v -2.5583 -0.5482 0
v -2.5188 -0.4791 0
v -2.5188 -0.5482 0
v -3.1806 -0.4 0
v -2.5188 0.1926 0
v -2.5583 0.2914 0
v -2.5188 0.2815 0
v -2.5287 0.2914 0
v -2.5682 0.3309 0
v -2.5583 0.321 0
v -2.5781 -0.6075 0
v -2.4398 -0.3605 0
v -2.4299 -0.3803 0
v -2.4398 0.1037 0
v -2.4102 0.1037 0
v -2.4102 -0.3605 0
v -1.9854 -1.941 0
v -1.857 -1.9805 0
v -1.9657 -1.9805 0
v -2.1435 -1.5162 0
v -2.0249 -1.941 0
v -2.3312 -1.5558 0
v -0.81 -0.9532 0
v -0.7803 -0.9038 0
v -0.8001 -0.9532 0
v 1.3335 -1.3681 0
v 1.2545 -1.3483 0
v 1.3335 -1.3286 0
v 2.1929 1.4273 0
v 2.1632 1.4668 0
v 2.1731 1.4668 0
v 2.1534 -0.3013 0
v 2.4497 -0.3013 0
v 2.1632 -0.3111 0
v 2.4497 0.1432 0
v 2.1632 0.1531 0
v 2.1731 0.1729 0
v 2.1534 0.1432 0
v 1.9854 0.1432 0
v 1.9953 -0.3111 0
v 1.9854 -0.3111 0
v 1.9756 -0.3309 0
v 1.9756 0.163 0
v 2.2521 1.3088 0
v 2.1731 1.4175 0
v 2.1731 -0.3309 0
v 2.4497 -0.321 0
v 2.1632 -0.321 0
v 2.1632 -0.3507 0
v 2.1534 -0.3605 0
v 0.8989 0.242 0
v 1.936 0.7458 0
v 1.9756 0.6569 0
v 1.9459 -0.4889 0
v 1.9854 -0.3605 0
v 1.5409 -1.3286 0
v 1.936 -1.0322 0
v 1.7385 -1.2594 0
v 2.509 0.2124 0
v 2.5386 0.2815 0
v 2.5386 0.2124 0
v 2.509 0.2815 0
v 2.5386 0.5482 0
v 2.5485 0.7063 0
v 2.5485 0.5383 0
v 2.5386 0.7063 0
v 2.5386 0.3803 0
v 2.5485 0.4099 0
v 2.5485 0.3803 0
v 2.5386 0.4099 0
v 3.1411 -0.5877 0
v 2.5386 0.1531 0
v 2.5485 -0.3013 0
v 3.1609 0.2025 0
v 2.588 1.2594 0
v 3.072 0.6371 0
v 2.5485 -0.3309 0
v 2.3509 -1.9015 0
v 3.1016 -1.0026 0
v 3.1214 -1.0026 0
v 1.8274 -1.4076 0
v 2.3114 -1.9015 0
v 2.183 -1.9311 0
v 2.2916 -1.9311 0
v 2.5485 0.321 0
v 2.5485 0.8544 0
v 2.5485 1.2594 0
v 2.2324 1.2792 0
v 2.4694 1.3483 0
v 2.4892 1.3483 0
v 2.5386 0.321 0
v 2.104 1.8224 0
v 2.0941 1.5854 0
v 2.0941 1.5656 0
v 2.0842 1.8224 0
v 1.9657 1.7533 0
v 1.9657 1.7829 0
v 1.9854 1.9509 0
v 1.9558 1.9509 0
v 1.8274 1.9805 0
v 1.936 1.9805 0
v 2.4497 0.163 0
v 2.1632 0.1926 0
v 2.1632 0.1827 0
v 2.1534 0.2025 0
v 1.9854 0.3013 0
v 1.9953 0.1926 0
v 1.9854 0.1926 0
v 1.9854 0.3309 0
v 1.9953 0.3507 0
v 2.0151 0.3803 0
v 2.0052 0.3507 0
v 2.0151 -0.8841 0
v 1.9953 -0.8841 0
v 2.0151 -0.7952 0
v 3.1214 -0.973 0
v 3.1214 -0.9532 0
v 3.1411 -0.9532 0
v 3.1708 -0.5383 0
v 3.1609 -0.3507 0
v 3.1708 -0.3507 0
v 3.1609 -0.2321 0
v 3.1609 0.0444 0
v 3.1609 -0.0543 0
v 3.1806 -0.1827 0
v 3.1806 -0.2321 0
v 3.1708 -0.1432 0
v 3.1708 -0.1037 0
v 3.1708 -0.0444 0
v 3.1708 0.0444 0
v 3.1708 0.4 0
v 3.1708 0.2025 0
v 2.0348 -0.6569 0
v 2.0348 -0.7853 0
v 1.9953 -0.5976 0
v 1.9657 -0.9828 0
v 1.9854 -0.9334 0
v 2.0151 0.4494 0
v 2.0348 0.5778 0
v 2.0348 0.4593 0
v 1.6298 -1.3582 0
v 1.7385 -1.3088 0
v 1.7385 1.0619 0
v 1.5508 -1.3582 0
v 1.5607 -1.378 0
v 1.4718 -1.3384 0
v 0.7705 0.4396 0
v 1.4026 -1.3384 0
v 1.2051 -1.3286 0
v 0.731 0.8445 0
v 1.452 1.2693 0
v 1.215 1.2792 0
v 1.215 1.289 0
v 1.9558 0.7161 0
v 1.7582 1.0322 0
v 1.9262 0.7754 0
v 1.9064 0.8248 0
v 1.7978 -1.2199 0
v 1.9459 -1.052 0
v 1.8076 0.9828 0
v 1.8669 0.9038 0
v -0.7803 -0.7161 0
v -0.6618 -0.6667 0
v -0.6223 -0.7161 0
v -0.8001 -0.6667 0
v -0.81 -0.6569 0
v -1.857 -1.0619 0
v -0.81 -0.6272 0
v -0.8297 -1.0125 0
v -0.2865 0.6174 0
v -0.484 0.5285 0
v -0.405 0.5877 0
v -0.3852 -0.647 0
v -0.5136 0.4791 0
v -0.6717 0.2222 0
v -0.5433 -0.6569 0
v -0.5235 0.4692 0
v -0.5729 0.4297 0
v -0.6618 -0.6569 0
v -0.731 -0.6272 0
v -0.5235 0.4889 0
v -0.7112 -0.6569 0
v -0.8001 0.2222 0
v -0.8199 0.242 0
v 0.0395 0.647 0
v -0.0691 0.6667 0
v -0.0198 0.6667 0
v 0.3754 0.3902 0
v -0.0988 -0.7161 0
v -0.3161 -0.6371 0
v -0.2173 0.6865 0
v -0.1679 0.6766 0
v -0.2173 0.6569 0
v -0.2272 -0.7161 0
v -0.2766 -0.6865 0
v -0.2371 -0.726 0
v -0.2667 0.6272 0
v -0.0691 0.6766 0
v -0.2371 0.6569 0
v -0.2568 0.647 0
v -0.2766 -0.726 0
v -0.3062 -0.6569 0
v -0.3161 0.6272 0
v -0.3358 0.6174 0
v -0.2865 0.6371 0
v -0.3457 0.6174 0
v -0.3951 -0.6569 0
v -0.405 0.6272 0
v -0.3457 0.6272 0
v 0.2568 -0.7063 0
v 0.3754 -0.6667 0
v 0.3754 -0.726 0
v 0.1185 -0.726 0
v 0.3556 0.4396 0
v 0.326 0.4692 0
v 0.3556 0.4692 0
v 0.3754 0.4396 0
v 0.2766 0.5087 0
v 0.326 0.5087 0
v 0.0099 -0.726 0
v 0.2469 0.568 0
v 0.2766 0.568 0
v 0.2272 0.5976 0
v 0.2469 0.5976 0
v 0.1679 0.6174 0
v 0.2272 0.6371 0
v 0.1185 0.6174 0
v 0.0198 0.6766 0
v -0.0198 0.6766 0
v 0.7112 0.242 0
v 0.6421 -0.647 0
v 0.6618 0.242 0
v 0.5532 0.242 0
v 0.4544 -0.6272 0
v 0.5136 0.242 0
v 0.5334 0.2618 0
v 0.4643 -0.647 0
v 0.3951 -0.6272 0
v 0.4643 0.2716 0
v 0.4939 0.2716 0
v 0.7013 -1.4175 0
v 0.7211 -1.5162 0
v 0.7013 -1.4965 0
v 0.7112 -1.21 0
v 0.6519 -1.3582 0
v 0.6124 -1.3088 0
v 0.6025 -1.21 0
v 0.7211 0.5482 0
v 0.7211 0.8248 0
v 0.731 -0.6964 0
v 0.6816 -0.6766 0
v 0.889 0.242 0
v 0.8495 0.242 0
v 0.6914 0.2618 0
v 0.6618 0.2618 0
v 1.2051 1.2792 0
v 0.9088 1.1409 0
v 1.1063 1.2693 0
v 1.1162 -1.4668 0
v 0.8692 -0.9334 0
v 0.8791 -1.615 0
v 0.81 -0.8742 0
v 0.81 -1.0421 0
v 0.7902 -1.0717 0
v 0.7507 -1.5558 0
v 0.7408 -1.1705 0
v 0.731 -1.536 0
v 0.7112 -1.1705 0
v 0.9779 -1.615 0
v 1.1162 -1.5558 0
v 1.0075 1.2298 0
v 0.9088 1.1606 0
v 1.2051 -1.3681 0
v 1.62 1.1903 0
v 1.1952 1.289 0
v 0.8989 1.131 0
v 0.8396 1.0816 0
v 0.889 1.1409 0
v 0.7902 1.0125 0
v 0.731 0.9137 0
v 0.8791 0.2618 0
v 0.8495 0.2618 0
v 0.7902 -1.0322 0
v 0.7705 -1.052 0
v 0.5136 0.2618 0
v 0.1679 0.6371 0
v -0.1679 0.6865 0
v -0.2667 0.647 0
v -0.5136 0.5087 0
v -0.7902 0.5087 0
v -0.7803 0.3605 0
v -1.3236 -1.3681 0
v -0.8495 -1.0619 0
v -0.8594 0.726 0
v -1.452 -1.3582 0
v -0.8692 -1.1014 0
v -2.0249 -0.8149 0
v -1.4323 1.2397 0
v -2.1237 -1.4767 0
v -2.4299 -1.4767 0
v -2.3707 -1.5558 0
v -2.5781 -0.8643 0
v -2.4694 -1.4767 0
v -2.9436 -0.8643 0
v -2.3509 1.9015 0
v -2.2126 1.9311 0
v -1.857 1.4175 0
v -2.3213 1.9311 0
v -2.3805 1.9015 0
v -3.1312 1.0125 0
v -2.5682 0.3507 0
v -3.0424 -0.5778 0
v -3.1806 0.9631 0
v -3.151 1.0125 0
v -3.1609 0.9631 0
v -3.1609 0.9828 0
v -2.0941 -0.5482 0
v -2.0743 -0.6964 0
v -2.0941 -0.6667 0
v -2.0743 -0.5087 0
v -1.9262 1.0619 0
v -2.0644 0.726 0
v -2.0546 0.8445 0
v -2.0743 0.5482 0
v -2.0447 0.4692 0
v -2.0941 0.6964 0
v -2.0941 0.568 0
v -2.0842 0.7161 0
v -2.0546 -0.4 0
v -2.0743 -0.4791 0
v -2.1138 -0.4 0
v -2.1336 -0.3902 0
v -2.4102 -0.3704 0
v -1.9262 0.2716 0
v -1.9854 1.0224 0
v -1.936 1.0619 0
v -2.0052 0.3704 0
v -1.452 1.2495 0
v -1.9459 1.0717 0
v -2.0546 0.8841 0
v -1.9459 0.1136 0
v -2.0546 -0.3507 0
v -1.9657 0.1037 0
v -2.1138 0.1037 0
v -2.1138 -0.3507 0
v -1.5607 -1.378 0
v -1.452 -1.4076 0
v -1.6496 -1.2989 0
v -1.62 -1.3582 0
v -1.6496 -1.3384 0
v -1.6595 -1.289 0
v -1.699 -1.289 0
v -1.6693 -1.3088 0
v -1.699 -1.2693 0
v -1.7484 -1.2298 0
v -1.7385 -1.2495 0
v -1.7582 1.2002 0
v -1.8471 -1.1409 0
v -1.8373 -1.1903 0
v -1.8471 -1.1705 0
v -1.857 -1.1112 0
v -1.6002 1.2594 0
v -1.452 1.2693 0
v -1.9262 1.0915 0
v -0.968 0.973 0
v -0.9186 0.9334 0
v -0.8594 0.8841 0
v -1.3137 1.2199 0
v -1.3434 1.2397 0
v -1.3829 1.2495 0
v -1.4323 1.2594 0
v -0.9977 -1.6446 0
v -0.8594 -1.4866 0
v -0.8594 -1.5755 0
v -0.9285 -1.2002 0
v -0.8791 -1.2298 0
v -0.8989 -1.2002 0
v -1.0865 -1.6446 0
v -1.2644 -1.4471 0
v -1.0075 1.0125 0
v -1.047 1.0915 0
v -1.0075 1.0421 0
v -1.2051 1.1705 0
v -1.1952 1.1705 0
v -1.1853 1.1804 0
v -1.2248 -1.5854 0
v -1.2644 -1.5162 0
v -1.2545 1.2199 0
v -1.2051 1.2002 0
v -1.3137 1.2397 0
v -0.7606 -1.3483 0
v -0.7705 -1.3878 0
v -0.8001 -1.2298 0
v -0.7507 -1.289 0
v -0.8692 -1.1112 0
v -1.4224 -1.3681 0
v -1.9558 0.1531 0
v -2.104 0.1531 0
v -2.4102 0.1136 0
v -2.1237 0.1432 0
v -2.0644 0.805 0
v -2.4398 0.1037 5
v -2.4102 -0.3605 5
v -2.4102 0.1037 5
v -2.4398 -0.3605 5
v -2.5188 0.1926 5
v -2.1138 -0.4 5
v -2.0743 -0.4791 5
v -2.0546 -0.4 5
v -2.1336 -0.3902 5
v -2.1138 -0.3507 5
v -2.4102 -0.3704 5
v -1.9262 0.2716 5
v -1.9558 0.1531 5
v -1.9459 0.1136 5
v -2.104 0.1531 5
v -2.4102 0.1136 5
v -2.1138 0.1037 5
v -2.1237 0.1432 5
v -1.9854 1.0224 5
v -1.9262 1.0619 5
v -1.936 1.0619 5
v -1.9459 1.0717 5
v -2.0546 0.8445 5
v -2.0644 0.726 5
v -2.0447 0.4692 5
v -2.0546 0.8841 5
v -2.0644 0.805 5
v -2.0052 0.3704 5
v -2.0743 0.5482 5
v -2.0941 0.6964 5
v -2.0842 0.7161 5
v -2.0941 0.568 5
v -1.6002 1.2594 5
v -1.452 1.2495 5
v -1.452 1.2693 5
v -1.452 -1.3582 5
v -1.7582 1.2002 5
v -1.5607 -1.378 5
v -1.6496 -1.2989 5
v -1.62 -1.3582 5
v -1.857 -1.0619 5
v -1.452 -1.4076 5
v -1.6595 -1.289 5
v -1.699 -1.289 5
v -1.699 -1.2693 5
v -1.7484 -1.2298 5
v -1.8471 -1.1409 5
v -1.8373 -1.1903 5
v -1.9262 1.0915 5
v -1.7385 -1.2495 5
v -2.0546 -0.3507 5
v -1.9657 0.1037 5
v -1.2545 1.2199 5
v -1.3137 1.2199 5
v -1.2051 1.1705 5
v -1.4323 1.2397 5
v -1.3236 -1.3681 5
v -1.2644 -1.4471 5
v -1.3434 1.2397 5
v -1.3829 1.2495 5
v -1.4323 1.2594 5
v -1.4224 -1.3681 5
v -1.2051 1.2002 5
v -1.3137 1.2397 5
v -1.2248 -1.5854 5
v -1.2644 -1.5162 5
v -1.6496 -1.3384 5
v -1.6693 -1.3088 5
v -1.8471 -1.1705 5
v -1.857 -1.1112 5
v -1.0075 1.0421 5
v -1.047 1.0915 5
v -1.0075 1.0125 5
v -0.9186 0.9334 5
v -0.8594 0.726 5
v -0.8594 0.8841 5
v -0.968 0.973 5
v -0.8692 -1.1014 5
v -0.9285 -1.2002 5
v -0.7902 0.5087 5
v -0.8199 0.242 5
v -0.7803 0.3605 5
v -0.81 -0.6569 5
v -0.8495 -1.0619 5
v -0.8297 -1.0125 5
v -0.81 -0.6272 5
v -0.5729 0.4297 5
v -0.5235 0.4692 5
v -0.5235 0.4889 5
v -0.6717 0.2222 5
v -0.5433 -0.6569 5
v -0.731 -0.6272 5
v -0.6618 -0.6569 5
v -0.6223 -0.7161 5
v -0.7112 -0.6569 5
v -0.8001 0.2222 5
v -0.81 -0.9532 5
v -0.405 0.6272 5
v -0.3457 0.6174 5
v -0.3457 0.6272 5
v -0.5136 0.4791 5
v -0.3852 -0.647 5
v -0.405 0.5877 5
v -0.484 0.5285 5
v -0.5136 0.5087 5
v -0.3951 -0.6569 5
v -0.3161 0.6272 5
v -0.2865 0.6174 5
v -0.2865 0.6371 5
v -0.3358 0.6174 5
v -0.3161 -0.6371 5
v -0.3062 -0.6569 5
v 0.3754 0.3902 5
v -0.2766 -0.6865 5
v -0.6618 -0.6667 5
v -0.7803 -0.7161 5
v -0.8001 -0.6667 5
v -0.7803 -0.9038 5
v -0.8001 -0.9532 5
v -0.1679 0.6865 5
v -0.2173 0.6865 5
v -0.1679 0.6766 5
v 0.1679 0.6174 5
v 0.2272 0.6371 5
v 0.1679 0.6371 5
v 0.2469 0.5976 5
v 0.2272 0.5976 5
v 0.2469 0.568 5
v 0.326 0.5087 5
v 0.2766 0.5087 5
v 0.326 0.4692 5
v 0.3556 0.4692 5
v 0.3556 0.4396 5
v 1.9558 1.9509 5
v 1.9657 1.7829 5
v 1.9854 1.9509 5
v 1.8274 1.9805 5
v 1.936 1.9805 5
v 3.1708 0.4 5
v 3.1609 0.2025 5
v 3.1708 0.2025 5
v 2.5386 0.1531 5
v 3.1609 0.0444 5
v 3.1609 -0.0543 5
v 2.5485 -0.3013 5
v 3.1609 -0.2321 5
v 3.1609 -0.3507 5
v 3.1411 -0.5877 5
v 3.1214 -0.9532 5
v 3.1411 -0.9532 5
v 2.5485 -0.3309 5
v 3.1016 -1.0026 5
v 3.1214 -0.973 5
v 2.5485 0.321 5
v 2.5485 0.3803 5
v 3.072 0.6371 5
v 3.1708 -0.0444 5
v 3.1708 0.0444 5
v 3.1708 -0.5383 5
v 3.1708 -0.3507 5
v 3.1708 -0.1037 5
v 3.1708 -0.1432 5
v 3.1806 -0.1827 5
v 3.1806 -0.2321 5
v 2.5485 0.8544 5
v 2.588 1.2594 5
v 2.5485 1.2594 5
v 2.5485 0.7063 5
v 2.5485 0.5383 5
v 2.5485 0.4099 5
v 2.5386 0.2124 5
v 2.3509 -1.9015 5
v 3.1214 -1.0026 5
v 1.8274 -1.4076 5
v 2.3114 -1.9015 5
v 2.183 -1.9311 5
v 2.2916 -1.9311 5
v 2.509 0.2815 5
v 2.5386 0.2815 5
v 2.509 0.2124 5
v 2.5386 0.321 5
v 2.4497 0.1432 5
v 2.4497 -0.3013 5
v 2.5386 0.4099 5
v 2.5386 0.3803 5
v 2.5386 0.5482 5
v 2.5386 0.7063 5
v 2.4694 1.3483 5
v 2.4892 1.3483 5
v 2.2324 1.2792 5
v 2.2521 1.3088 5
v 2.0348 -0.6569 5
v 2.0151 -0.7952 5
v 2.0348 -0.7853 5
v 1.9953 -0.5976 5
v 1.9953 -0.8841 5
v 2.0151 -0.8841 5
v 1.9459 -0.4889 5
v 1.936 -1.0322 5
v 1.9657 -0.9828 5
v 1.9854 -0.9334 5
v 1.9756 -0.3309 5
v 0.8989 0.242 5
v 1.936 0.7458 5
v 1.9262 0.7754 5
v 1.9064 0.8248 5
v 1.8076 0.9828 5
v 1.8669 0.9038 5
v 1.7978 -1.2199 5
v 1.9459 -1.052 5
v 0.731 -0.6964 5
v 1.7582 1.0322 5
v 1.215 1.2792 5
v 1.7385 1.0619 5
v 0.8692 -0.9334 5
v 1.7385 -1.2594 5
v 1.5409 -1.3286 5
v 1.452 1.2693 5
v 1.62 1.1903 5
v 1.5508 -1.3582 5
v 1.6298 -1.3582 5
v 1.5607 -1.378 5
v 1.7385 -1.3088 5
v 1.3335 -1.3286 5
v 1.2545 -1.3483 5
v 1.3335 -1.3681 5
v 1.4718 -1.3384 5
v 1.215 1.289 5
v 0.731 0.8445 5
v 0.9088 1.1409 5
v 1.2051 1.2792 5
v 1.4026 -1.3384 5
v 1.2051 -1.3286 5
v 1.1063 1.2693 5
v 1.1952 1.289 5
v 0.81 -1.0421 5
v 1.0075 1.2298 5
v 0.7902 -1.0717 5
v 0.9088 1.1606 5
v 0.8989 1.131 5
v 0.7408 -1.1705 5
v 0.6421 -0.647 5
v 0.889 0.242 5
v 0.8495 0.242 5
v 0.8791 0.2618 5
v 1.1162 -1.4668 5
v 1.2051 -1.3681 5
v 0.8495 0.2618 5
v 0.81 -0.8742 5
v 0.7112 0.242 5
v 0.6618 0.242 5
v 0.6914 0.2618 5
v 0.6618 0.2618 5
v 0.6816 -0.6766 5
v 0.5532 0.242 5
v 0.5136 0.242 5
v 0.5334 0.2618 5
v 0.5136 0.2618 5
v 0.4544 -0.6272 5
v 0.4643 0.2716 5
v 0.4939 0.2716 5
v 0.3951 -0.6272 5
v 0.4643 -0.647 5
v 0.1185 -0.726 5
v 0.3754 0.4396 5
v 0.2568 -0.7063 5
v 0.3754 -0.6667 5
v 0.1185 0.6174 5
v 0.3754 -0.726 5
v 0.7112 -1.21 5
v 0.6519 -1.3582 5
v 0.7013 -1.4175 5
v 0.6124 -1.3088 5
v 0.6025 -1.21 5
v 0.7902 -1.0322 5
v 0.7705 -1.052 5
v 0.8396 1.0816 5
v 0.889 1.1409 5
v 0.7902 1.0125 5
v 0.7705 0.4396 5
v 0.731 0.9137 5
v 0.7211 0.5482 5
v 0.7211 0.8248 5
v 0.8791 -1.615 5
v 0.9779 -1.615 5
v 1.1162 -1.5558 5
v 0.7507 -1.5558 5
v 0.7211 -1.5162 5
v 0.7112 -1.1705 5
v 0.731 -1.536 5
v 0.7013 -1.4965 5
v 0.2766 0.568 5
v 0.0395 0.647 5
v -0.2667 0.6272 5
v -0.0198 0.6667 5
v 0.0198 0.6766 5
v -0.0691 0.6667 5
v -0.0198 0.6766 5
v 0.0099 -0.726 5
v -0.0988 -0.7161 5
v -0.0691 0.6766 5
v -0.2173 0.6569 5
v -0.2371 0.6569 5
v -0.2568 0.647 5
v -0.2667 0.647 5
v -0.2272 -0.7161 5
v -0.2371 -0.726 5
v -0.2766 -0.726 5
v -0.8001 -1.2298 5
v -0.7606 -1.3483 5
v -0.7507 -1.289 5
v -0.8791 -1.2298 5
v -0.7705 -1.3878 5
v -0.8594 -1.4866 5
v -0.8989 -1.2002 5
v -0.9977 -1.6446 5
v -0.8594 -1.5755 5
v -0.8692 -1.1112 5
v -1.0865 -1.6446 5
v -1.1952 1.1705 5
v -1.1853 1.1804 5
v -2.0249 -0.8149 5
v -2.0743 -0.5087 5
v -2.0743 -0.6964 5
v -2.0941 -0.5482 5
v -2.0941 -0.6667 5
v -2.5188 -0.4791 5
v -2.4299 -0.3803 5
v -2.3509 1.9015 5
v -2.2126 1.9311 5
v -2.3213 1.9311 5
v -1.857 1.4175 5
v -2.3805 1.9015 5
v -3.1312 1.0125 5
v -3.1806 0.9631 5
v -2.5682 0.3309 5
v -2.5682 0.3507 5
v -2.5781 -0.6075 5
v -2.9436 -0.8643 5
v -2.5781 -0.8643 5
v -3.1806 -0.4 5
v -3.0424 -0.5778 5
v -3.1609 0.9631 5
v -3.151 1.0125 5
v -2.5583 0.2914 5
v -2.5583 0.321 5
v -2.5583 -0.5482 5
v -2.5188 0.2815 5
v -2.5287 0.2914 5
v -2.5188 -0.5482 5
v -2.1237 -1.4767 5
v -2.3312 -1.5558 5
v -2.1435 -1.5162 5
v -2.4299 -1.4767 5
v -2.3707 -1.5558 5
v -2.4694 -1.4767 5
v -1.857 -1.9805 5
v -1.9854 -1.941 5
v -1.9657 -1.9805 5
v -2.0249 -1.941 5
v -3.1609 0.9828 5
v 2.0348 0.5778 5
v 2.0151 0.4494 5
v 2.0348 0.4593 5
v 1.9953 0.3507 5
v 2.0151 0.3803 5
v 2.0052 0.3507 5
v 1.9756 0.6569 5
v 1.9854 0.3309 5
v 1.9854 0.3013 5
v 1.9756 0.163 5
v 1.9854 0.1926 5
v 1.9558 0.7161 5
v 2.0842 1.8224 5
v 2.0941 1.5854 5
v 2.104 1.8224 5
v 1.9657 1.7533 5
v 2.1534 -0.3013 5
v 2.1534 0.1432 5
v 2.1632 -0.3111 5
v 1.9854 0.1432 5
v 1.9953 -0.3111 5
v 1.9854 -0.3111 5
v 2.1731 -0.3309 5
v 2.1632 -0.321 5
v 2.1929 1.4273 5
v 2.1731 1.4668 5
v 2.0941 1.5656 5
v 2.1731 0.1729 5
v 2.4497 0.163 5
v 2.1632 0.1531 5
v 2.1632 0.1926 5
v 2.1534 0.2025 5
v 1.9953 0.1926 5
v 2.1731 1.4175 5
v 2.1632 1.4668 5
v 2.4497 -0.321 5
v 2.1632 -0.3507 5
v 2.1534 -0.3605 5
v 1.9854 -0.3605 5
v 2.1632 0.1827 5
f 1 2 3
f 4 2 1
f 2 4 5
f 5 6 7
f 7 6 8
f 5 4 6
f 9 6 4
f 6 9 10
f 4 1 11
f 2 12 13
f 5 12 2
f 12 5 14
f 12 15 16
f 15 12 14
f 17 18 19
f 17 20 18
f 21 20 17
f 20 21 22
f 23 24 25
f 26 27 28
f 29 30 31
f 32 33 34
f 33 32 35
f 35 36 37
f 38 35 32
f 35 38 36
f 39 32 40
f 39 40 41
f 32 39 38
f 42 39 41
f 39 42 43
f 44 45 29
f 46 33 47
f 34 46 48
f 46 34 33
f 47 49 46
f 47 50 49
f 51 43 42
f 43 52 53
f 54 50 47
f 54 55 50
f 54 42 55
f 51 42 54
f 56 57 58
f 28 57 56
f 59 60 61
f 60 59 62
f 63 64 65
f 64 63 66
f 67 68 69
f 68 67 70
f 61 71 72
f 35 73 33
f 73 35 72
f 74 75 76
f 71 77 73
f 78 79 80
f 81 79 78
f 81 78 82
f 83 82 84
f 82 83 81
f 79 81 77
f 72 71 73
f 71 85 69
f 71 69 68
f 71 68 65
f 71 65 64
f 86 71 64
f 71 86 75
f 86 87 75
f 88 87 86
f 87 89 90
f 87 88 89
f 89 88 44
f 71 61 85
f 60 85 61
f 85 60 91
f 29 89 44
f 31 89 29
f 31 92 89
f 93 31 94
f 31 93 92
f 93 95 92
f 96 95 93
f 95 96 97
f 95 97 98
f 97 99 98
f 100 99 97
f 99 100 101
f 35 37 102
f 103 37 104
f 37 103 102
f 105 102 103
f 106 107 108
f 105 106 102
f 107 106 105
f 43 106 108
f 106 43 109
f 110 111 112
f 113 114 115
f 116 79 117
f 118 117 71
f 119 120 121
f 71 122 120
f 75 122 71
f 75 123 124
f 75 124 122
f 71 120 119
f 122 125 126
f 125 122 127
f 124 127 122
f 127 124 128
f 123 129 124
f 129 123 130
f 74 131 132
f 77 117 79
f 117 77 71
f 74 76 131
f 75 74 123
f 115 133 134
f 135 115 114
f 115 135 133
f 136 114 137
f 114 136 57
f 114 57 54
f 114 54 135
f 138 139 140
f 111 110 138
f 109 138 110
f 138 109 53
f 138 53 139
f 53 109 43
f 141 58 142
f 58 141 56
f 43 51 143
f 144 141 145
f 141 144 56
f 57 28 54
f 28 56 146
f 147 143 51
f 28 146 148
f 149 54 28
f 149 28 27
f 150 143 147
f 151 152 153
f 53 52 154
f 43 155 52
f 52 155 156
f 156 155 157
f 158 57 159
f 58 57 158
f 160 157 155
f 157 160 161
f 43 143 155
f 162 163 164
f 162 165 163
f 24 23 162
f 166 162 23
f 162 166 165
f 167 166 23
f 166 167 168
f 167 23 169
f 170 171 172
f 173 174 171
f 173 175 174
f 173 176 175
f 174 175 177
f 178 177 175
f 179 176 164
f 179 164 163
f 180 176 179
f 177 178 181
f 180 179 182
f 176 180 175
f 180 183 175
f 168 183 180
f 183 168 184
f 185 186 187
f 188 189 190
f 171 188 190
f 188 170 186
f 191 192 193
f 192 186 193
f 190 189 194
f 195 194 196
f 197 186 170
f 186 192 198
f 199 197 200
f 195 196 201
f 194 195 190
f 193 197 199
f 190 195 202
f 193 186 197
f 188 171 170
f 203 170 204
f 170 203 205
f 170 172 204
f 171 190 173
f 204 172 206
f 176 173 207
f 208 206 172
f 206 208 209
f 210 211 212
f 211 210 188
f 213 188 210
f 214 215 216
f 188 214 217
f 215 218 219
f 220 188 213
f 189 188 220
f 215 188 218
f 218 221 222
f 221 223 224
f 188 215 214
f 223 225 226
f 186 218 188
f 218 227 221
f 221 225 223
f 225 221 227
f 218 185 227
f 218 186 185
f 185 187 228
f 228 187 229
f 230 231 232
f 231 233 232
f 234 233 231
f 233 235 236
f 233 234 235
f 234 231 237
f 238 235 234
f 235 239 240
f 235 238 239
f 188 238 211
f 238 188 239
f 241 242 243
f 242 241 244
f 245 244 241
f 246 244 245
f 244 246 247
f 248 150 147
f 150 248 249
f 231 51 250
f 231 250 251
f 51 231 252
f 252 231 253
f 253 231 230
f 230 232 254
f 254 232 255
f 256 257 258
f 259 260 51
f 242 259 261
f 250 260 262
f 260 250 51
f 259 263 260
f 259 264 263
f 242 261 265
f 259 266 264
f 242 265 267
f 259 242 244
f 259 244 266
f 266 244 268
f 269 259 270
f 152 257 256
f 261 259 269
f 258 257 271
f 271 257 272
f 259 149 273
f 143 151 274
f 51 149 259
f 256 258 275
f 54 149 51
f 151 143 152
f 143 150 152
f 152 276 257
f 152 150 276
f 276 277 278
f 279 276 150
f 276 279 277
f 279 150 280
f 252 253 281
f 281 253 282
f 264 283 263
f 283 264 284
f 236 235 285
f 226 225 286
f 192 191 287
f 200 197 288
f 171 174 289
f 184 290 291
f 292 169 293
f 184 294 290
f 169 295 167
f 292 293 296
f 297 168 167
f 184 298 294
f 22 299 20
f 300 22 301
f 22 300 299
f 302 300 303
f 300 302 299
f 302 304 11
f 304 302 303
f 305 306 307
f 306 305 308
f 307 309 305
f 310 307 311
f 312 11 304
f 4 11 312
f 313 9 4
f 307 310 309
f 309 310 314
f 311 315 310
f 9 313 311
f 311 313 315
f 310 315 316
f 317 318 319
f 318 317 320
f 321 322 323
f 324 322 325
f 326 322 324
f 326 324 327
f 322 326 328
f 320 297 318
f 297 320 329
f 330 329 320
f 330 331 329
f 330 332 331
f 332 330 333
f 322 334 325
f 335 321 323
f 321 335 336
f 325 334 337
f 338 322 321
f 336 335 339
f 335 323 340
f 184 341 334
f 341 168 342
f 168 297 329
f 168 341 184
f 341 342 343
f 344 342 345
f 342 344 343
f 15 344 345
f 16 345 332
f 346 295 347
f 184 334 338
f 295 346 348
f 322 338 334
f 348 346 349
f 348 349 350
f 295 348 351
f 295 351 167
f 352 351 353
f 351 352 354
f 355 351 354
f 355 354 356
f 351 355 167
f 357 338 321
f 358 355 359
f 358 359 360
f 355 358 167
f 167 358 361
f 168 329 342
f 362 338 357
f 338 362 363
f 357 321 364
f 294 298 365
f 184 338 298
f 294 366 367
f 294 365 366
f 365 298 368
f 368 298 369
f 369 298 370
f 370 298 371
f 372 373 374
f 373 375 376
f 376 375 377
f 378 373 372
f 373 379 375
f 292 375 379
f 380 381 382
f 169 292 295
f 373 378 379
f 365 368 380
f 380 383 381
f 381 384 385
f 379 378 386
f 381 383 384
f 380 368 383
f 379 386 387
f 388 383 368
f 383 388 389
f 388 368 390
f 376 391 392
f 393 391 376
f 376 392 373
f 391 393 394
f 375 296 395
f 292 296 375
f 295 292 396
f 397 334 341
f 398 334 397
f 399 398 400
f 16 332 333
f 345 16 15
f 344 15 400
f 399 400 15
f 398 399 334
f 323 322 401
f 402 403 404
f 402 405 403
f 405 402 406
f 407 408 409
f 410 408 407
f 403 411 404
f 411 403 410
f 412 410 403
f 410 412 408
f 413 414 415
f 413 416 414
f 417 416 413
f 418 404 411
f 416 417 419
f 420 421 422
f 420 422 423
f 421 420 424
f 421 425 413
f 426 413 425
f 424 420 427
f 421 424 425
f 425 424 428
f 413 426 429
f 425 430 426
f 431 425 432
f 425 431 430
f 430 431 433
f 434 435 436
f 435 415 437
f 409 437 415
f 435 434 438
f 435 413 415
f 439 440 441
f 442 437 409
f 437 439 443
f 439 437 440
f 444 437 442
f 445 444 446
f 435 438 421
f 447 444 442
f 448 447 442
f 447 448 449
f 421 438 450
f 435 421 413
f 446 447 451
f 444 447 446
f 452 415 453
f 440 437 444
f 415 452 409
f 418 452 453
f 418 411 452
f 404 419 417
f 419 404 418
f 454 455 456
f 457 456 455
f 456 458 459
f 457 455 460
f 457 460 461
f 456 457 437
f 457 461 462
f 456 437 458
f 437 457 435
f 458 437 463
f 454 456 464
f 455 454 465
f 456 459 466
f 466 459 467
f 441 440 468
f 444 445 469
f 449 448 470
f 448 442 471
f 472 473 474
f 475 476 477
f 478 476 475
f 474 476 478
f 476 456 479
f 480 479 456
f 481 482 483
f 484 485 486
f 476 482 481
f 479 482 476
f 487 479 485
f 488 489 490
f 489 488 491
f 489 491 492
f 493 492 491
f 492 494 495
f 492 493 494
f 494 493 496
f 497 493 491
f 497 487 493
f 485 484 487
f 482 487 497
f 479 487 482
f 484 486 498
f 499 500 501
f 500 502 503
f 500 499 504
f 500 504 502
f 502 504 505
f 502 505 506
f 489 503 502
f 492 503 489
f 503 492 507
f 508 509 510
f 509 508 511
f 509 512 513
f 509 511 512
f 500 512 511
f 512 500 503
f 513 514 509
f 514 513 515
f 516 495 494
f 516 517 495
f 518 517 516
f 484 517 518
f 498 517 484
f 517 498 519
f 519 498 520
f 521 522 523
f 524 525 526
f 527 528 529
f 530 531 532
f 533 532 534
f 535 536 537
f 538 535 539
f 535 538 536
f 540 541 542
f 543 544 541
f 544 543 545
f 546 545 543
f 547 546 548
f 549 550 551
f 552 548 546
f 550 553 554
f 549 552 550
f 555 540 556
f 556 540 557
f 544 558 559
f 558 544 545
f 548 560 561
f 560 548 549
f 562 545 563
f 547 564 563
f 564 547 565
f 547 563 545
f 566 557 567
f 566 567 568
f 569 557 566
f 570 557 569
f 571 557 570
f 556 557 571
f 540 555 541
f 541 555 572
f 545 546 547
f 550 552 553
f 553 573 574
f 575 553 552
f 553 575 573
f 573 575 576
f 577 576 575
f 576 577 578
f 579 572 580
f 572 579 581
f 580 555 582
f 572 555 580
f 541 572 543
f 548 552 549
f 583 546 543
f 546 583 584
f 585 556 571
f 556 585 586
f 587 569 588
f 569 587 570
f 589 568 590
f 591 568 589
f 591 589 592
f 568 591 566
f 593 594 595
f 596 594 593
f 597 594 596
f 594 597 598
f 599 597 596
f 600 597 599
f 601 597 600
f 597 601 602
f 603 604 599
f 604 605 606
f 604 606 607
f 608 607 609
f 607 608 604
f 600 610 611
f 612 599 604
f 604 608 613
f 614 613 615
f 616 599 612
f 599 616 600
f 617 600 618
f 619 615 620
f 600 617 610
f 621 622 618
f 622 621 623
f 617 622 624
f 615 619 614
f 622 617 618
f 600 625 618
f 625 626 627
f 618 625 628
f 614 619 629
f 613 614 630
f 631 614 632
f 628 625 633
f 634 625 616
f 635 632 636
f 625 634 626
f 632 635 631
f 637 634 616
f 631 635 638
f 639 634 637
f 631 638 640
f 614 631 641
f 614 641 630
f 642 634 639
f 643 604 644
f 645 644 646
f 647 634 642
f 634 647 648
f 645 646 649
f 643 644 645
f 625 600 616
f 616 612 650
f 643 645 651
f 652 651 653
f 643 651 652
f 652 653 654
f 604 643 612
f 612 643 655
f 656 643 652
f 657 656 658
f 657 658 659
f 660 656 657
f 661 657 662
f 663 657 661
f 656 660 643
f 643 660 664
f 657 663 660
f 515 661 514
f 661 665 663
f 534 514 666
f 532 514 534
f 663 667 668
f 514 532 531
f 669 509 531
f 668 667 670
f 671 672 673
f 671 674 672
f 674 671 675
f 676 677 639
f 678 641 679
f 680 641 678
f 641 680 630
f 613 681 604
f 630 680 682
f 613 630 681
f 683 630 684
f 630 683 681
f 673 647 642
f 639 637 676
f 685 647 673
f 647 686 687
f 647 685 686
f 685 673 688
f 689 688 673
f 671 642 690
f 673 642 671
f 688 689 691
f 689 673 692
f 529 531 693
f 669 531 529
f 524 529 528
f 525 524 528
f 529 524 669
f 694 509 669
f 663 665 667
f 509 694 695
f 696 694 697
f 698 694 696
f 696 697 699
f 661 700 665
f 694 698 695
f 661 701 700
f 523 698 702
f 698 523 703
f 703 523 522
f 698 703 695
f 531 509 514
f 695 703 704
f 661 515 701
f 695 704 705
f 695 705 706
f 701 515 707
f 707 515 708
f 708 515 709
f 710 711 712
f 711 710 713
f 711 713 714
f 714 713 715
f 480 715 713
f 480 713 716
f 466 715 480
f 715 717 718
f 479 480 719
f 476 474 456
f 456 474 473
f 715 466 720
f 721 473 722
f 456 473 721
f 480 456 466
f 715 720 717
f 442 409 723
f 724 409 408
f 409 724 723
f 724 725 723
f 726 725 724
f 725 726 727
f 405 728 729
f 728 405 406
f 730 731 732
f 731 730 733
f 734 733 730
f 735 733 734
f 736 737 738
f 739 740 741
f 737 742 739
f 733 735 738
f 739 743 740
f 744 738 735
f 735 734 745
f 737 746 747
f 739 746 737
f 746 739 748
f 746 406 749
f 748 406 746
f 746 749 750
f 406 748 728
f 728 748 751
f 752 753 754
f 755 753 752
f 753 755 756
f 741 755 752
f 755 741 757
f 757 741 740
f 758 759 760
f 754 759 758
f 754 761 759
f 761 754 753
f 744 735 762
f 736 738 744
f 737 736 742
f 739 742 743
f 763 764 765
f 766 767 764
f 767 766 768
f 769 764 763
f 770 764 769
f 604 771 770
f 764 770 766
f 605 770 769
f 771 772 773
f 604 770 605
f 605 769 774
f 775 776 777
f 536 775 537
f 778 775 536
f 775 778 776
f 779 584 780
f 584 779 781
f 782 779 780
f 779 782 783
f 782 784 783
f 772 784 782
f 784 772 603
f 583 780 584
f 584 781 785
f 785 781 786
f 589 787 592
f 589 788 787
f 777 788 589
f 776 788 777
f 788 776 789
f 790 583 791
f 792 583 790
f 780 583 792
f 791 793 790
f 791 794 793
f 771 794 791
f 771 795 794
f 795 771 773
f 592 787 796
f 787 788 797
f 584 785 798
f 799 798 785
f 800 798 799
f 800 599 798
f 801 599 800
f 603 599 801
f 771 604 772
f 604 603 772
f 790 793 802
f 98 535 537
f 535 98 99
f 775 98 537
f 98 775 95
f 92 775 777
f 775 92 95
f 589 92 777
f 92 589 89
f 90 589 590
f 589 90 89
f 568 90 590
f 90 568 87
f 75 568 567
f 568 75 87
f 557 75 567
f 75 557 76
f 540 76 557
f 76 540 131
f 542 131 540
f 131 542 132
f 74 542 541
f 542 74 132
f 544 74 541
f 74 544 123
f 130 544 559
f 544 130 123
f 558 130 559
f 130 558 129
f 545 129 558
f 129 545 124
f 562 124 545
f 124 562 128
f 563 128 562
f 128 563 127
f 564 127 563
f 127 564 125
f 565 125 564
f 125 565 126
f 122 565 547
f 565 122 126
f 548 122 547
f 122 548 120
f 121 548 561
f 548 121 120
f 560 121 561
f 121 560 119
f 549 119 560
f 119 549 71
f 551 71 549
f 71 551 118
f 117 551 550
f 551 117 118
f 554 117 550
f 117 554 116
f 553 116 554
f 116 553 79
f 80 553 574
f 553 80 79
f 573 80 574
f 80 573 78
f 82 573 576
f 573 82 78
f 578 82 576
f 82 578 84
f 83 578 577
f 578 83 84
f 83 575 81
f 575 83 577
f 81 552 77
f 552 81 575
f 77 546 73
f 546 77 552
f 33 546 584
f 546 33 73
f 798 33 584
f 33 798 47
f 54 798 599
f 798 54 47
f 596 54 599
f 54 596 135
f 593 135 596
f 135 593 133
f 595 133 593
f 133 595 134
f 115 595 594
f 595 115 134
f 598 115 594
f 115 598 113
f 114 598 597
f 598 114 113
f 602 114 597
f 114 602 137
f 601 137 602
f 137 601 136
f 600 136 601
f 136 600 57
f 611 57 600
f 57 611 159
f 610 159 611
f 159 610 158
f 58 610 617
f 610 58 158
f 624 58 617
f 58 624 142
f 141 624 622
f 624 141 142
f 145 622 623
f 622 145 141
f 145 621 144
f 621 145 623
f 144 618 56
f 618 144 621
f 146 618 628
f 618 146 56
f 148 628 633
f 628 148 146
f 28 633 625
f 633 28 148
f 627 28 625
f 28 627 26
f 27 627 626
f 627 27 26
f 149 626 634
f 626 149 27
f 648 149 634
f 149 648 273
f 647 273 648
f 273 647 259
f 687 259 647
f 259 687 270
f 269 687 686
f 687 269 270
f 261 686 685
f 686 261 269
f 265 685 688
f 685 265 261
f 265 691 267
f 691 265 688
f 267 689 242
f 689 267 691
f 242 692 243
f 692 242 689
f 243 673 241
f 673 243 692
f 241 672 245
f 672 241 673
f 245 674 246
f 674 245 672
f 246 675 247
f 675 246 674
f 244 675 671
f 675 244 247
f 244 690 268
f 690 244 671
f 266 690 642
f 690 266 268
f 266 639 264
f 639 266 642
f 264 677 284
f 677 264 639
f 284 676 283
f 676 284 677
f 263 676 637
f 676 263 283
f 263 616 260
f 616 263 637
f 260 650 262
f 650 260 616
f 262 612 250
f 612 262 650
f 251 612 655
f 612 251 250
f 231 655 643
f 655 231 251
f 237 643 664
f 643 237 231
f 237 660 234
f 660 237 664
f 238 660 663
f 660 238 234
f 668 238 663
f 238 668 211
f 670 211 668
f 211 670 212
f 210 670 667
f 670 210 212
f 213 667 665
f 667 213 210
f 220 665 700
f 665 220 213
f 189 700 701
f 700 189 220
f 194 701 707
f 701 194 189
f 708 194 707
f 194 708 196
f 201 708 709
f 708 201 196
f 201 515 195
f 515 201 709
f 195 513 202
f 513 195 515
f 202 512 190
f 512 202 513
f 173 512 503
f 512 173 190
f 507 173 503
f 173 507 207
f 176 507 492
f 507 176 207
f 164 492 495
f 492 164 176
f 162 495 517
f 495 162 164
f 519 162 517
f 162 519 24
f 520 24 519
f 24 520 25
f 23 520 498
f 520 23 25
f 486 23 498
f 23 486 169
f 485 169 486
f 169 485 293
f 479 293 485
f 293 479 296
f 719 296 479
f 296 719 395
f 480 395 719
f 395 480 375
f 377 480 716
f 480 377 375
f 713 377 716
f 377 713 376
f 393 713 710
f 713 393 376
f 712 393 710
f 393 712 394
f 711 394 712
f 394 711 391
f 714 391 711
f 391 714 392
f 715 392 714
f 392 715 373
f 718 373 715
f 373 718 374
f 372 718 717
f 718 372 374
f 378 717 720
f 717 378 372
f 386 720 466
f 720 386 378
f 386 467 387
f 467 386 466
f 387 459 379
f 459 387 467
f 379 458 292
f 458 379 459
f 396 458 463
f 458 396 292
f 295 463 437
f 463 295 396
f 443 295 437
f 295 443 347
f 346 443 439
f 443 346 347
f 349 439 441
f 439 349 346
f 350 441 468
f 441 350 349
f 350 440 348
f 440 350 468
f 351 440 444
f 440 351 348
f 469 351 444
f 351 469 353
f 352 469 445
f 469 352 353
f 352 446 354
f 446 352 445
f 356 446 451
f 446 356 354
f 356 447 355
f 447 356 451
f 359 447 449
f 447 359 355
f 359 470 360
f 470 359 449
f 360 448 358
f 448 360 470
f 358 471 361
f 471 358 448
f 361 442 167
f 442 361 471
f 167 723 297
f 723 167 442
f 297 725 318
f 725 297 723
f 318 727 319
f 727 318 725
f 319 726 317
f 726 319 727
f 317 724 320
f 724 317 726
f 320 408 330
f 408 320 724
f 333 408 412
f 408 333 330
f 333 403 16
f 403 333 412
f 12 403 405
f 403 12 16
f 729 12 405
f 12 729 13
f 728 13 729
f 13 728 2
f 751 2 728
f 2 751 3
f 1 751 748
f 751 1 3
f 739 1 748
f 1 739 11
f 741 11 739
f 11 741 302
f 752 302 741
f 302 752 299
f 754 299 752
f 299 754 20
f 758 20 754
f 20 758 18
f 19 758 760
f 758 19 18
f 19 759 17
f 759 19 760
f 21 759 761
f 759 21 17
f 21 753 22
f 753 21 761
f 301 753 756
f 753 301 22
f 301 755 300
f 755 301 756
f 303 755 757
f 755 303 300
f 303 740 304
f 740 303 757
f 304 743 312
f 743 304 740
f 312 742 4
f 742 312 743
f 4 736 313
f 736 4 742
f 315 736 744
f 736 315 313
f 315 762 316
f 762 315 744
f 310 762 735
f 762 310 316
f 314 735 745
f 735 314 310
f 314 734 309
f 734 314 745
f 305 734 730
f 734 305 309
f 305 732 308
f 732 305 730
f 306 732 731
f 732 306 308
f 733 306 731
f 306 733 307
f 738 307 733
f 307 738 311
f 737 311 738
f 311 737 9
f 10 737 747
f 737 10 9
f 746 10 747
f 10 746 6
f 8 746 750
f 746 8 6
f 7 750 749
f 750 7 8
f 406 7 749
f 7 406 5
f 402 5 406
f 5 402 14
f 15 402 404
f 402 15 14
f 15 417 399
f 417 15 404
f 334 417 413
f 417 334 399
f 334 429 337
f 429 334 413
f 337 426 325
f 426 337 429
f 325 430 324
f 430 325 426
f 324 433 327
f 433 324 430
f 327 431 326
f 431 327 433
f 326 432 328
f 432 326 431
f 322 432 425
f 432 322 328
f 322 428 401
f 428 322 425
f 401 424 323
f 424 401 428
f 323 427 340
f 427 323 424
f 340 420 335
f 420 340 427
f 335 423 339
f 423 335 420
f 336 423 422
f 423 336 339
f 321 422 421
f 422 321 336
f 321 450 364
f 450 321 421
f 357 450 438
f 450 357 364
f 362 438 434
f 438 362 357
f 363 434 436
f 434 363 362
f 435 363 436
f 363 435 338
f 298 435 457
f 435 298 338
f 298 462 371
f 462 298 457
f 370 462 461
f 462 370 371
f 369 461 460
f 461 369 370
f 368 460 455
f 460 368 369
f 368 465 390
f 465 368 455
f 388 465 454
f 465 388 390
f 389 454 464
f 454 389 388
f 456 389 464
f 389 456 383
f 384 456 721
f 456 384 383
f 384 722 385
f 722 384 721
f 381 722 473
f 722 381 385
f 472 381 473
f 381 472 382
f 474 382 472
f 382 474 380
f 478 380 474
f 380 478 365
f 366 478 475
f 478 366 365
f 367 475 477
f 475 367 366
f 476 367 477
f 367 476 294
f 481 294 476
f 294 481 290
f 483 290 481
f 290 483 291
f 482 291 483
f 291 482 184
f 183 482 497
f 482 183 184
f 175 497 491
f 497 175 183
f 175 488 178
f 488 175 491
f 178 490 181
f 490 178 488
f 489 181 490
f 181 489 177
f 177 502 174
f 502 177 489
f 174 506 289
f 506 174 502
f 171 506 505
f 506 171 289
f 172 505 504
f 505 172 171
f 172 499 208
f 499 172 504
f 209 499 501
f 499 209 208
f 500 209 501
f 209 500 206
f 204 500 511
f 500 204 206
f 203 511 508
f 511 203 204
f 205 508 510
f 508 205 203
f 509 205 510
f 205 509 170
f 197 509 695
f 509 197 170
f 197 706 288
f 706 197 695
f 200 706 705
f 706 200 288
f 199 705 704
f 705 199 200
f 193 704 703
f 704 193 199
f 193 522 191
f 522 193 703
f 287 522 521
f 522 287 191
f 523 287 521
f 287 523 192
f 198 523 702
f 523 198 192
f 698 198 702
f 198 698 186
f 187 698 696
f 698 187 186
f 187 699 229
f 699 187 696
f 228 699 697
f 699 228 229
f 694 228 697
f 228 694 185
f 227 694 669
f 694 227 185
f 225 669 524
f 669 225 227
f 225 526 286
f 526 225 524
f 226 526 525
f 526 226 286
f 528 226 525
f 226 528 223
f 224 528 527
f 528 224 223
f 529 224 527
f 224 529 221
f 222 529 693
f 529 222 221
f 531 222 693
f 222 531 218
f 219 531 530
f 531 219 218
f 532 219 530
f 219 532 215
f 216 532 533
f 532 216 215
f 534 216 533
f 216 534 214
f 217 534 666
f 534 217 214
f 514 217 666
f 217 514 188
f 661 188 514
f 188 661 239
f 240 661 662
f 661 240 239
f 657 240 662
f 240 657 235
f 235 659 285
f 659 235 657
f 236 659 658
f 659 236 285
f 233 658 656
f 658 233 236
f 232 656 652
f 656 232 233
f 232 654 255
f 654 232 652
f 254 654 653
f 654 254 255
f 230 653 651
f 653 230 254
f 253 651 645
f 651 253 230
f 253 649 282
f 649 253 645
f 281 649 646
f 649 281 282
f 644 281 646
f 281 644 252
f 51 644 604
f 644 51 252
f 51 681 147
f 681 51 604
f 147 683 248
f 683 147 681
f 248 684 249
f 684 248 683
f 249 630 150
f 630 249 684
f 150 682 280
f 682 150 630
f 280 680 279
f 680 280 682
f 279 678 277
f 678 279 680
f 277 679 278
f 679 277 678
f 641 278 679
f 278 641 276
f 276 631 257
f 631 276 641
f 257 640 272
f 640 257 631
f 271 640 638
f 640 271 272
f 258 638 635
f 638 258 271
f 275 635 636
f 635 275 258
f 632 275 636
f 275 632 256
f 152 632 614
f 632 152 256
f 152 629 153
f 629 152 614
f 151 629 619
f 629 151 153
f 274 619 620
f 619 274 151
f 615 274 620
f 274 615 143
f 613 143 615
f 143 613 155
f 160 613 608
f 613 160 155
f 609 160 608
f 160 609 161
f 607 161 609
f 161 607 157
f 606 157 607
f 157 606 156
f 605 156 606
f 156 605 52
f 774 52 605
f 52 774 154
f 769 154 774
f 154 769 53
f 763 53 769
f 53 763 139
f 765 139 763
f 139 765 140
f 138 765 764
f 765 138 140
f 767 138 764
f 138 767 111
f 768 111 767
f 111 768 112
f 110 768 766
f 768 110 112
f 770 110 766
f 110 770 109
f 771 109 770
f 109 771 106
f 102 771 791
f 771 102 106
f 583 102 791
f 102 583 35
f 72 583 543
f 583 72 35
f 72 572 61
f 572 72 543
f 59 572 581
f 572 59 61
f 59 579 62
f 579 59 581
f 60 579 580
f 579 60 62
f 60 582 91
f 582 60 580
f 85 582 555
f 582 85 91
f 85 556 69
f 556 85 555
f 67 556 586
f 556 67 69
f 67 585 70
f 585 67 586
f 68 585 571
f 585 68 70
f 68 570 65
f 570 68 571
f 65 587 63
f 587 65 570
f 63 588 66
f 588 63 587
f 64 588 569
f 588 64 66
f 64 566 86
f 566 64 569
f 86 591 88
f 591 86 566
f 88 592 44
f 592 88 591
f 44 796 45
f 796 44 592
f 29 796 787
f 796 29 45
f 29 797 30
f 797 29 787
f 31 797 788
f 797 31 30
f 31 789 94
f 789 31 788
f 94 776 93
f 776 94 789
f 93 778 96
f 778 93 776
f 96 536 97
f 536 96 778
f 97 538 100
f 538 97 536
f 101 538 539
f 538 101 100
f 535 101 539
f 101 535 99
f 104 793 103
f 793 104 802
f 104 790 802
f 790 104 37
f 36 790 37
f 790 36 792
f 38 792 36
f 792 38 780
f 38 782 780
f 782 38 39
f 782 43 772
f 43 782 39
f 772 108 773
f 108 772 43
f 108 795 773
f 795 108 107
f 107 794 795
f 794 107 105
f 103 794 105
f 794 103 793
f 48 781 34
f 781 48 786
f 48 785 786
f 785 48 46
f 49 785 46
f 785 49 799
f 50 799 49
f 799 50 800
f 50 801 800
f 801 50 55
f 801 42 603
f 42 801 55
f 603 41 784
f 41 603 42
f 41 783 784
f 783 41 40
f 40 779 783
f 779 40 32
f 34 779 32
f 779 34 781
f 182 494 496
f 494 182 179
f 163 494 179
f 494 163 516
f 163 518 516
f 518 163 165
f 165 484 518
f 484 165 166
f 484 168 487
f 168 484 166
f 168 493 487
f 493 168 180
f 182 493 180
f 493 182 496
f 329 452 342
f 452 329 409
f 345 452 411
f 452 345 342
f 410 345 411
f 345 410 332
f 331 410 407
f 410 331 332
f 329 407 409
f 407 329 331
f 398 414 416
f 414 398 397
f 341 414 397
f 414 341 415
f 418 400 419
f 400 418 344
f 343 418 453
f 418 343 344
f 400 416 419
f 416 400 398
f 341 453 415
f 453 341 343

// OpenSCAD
// Module names are of the form poly_<inkscape-path-id>().  As a result,
// you can associate a polygon in this OpenSCAD program with the corresponding
// SVG element in the Inkscape document by looking for the XML element with
// the attribute id="inkscape-path-id".

// fudge value is used to ensure that subtracted solids are a tad taller
// in the z dimension than the polygon being subtracted from.  This helps
// keep the resulting .stl file manifold.
fudge = 0.1;

module poly_path4299(h)
{
  scale([25.4/90, -25.4/90, 1]) union()
  {
    difference()
    {
       linear_extrude(height=h)
         polygon([[-6.580000,-5.022500],[-9.100000,-1.242500],[-9.100000,-1.172500],[-9.065000,-1.137500],[-9.065000,-1.032500],[-8.960000,-1.032500],[-8.925000,-0.997500],[-8.925000,-0.682500],[-8.645000,-0.367500],[-8.540000,-0.367500],[-8.540000,-0.402500],[-6.825000,-0.962500],[-7.105000,-1.312500],[-7.245000,-1.662500],[-7.350000,-1.942500],[-7.420000,-2.012500],[-7.420000,-2.502500],[-7.420000,-2.467500],[-7.385000,-2.537500],[-7.315000,-2.572500],[-7.315000,-2.782500],[-7.315000,-2.852500],[-7.280000,-2.992500],[-7.280000,-3.132500],[-7.035000,-3.622500],[-6.895000,-3.797500],[-6.860000,-3.762500],[-6.825000,-3.762500],[-6.825000,-3.867500],[-6.230000,-4.252500],[-5.670000,-4.462500],[-5.145000,-4.497500],[-5.145000,-4.427500],[-5.075000,-4.392500],[-5.075000,-4.462500],[-4.900000,-4.427500],[-4.760000,-4.392500],[-4.655000,-4.322500],[-4.655000,-4.392500],[-4.445000,-4.322500],[-4.270000,-4.252500],[-4.270000,-4.147500],[-4.235000,-4.147500],[-4.200000,-4.182500],[-3.710000,-3.867500],[-3.570000,-3.692500],[-3.570000,-3.587500],[-3.430000,-3.447500],[-3.255000,-3.307500],[-3.045000,-3.132500],[-3.045000,-2.572500],[-2.800000,-1.802500],[-2.765000,-1.277500],[-2.905000,-0.857500],[-2.835000,-0.787500],[-2.380000,-0.787500],[-2.030000,-1.522500],[-1.855000,-1.732500],[-1.855000,-1.662500],[-1.820000,-1.697500],[-1.820000,-1.802500],[-1.715000,-1.872500],[-1.575000,-1.977500],[-1.435000,-2.082500],[-1.435000,-2.222500],[-1.225000,-2.222500],[-1.225000,-2.187500],[-1.190000,-2.187500],[-1.120000,-2.222500],[-1.015000,-2.257500],[-1.015000,-2.187500],[-0.945000,-2.222500],[-0.945000,-2.292500],[-0.910000,-2.292500],[-0.840000,-2.327500],[-0.770000,-2.327500],[-0.770000,-2.432500],[-0.595000,-2.432500],[-0.595000,-2.397500],[-0.245000,-2.397500],[-0.245000,-2.362500],[-0.070000,-2.362500],[-0.070000,-2.397500],[0.070000,-2.397500],[0.140000,-2.292500],[0.420000,-2.187500],[0.595000,-2.187500],[0.595000,-2.257500],[0.805000,-2.257500],[0.805000,-2.117500],[0.875000,-2.117500],[0.875000,-2.012500],[0.980000,-2.012500],[0.980000,-1.802500],[1.155000,-1.802500],[1.155000,-1.662500],[1.260000,-1.662500],[1.260000,-1.557500],[1.330000,-1.557500],[1.330000,-1.382500],[1.645000,-0.962500],[1.750000,-0.962500],[1.820000,-0.857500],[1.820000,-0.927500],[1.890000,-0.927500],[1.960000,-0.857500],[2.345000,-0.857500],[2.345000,-0.927500],[2.450000,-0.927500],[2.520000,-0.857500],[3.010000,-0.857500],[3.010000,-0.927500],[3.115000,-0.927500],[3.150000,-0.857500],[3.185000,-0.857500],[2.730000,-1.557500],[2.555000,-1.942500],[2.555000,-2.782500],[2.555000,-2.922500],[2.590000,-2.992500],[2.590000,-3.237500],[2.800000,-3.587500],[2.975000,-3.832500],[3.150000,-4.042500],[3.185000,-4.007500],[3.220000,-4.042500],[3.220000,-4.112500],[3.570000,-4.357500],[3.920000,-4.497500],[4.235000,-4.567500],[4.270000,-4.532500],[4.305000,-4.532500],[4.305000,-4.567500],[5.145000,-4.497500],[5.740000,-4.217500],[6.160000,-3.762500],[6.230000,-3.657500],[6.405000,-3.482500],[6.615000,-3.202500],[6.685000,-3.062500],[6.755000,-2.922500],[6.825000,-2.747500],[6.860000,-2.642500],[6.930000,-2.537500],[7.000000,-2.327500],[7.210000,-2.047500],[7.210000,-1.627500],[7.140000,-1.592500],[7.140000,-1.347500],[7.105000,-1.242500],[7.070000,-1.242500],[7.035000,-1.172500],[7.035000,-1.137500],[7.035000,-1.067500],[8.680000,-0.577500],[8.680000,-0.507500],[8.995000,-0.542500],[8.995000,-0.752500],[8.890000,-0.752500],[8.890000,-0.997500],[8.995000,-0.997500],[8.995000,-1.137500],[9.030000,-1.137500],[9.030000,-1.347500],[8.995000,-1.347500],[8.995000,-1.452500],[9.030000,-1.452500],[9.030000,-1.907500],[8.995000,-1.942500],[8.995000,-2.502500],[9.030000,-2.502500],[9.030000,-3.027500],[7.910000,-4.532500],[7.980000,-4.637500],[7.700000,-5.022500],[7.770000,-5.057500],[7.665000,-5.197500],[7.700000,-5.197500],[7.420000,-5.547500],[7.420000,-5.617500],[6.965000,-6.212500],[6.965000,-6.317500],[6.475000,-7.017500],[6.860000,-7.017500],[6.930000,-6.912500],[7.035000,-6.912500],[7.385000,-6.457500],[7.455000,-6.457500],[8.750000,-4.777500],[8.820000,-4.777500],[9.030000,-4.462500],[9.170000,-4.462500],[10.885000,-2.257500],[11.235000,-1.417500],[11.235000,-0.717500],[11.200000,-0.717500],[11.200000,-0.157500],[11.235000,-0.157500],[11.235000,0.157500],[11.200000,0.192500],[11.235000,0.367500],[11.235000,0.507500],[11.270000,0.647500],[11.270000,0.822500],[11.200000,0.822500],[11.200000,1.242500],[11.235000,1.242500],[11.235000,1.907500],[11.130000,2.082500],[11.130000,3.377500],[11.060000,3.377500],[11.060000,3.447500],[10.990000,3.552500],[11.060000,3.552500],[8.330000,6.737500],[8.190000,6.737500],[8.120000,6.842500],[7.735000,6.842500],[6.475000,4.987500],[9.030000,1.172500],[9.030000,1.067500],[8.680000,1.067500],[8.680000,1.137500],[6.895000,1.732500],[7.070000,2.117500],[7.210000,2.327500],[7.210000,2.782500],[7.140000,2.817500],[7.140000,3.132500],[7.070000,3.132500],[7.035000,3.307500],[6.965000,3.482500],[6.860000,3.657500],[6.895000,3.727500],[6.370000,4.322500],[6.160000,4.462500],[6.160000,4.637500],[5.775000,4.812500],[5.530000,4.882500],[5.495000,4.812500],[5.460000,4.707500],[5.215000,4.742500],[4.970000,4.742500],[4.725000,4.707500],[4.725000,4.847500],[4.445000,4.777500],[4.270000,4.707500],[4.270000,4.847500],[3.955000,5.197500],[3.955000,5.512500],[3.465000,5.722500],[3.115000,5.722500],[2.660000,5.512500],[2.590000,5.442500],[2.555000,5.372500],[2.485000,5.302500],[2.485000,5.022500],[2.310000,4.812500],[2.170000,4.637500],[2.135000,4.287500],[2.520000,4.287500],[2.520000,4.147500],[2.625000,4.147500],[2.800000,3.797500],[2.730000,3.727500],[2.800000,3.657500],[2.870000,3.692500],[3.080000,3.307500],[2.870000,3.097500],[2.730000,2.782500],[2.590000,2.467500],[2.415000,2.397500],[2.275000,2.292500],[1.645000,2.292500],[1.610000,2.222500],[1.400000,2.222500],[1.330000,2.362500],[1.330000,2.572500],[0.910000,2.502500],[0.420000,2.572500],[0.035000,2.572500],[-0.350000,2.537500],[-0.805000,2.537500],[-0.840000,2.572500],[-0.980000,2.572500],[-0.980000,2.432500],[-1.085000,2.327500],[-1.120000,2.257500],[-1.365000,2.292500],[-1.400000,2.327500],[-1.925000,2.327500],[-2.205000,2.537500],[-2.765000,2.537500],[-2.765000,3.202500],[-2.835000,3.377500],[-2.870000,3.377500],[-2.940000,3.587500],[-3.010000,3.762500],[-3.080000,3.902500],[-3.080000,3.937500],[-3.290000,4.252500],[-3.185000,4.252500],[-3.115000,4.357500],[-2.835000,4.357500],[-2.660000,4.567500],[-2.695000,4.777500],[-2.730000,4.917500],[-3.045000,5.267500],[-3.045000,5.582500],[-3.535000,5.827500],[-3.850000,5.827500],[-4.340000,5.617500],[-4.480000,5.372500],[-4.480000,5.127500],[-4.690000,4.847500],[-5.040000,4.847500],[-5.145000,4.812500],[-5.145000,4.987500],[-5.530000,4.882500],[-5.740000,4.812500],[-5.845000,4.742500],[-5.845000,4.602500],[-5.880000,4.567500],[-5.915000,4.637500],[-6.020000,4.567500],[-6.020000,4.497500],[-6.160000,4.427500],[-6.195000,4.357500],[-6.510000,4.217500],[-6.545000,4.147500],[-6.545000,4.042500],[-6.580000,3.937500],[-6.580000,3.762500],[-7.175000,2.887500],[-7.350000,2.467500],[-7.420000,2.362500],[-7.420000,1.942500],[-7.385000,1.872500],[-7.350000,1.802500],[-7.350000,1.697500],[-8.540000,1.312500],[-8.540000,1.277500],[-8.645000,1.277500],[-8.610000,1.347500],[-8.925000,1.697500],[-8.925000,1.942500],[-9.065000,1.942500],[-9.135000,2.152500],[-9.135000,2.537500],[-9.135000,3.062500],[-7.525000,5.232500],[-7.595000,5.372500],[-6.580000,7.017500],[-6.965000,7.017500],[-7.035000,6.877500],[-7.175000,6.877500],[-8.260000,5.512500],[-8.400000,5.512500],[-8.610000,5.232500],[-8.750000,5.232500],[-10.430000,3.062500],[-10.780000,2.047500],[-11.270000,1.417500],[-11.270000,-3.412500],[-11.200000,-3.412500],[-11.200000,-3.482500],[-11.095000,-3.587500],[-11.165000,-3.587500],[-8.435000,-6.737500],[-8.330000,-6.737500],[-8.225000,-6.842500],[-7.840000,-6.842500],[-6.580000,-5.022500]]);
       translate([0, 0, -fudge])
         linear_extrude(height=h+2*fudge)
           polygon([[7.070000,-0.682500],[7.035000,-0.682500],[7.000000,-0.577500],[7.035000,-0.507500],[7.070000,-0.507500],[7.630000,-0.507500],[7.665000,-0.542500],[7.700000,-0.612500],[7.665000,-0.647500],[7.665000,-0.682500],[7.630000,-0.717500],[7.070000,-0.682500]]);
       translate([0, 0, -fudge])
         linear_extrude(height=h+2*fudge)
           polygon([[7.070000,1.102500],[7.035000,1.102500],[7.000000,1.172500],[7.035000,1.277500],[7.070000,1.277500],[7.630000,1.277500],[7.665000,1.242500],[7.700000,1.172500],[7.665000,1.137500],[7.665000,1.102500],[7.630000,1.067500],[7.070000,1.102500]]);
       translate([0, 0, -fudge])
         linear_extrude(height=h+2*fudge)
           polygon([[-2.870000,2.222500],[-2.870000,2.257500],[-2.870000,2.327500],[-2.835000,2.362500],[-2.345000,2.362500],[-2.345000,2.327500],[-2.520000,2.327500],[-2.590000,2.222500],[-2.870000,2.222500]]);
       translate([0, 0, -fudge])
         linear_extrude(height=h+2*fudge)
           polygon([[-7.490000,1.242500],[-7.560000,1.382500],[-7.490000,1.417500],[-7.280000,1.417500],[-7.280000,1.242500],[-7.490000,1.242500]]);
       translate([0, 0, -fudge])
         linear_extrude(height=h+2*fudge)
           polygon([[-7.455000,-0.542500],[-7.525000,-0.507500],[-7.490000,-0.367500],[-6.965000,-0.367500],[-6.895000,-0.402500],[-6.930000,-0.542500],[-7.455000,-0.542500]]);
    }
  }
}

poly_path4299(5);
